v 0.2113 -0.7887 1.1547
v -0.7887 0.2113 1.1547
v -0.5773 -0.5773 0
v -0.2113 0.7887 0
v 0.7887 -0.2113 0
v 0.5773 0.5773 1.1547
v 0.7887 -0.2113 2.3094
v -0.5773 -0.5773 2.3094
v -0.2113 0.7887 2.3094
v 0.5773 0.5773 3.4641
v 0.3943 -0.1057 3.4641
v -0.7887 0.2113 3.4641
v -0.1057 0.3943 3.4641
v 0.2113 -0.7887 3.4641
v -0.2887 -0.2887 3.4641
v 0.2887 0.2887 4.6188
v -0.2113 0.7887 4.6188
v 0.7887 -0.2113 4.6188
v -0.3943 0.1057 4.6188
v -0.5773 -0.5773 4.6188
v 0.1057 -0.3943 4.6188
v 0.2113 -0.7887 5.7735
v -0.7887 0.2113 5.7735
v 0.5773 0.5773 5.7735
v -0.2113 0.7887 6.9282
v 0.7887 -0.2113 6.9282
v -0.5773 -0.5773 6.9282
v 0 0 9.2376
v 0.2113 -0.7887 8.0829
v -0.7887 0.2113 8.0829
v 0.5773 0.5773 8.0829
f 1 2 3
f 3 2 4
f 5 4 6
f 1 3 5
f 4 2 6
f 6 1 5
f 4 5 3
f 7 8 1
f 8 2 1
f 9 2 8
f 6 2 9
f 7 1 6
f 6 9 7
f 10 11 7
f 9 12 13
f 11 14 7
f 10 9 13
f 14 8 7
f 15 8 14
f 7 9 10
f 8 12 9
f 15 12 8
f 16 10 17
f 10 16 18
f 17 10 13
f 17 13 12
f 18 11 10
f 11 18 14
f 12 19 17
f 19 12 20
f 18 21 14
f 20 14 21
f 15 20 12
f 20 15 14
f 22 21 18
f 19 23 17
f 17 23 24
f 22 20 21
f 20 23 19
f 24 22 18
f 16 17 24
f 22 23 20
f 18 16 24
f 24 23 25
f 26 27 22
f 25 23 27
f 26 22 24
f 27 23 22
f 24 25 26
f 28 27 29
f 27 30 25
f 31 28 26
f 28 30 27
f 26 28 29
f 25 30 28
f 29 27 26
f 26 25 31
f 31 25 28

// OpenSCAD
face_diagonal = sqrt(2);
cube_diagonal = sqrt((face_diagonal^2)+1);
angle = asin(face_diagonal/cube_diagonal);
point_height_1 = cos(angle);
point_height_2 = (cube_diagonal-(2*point_height_1));

module diamond(vertical_position=0) {
	rotate([0, 0, vertical_position*60])
	scale([1, 1, 2])
	translate([0, 0, vertical_position * point_height_2])
	translate([0, 0, -point_height_1])
	rotate(angle, [1, -1, 0])
	cube();
}

difference() {
	diamond(0);
	translate([-2, -2, -2])
		cube([4, 4, 2]);
}
diamond(1);
diamond(2);
diamond(3);
diamond(4);
diamond(5);
diamond(6);
